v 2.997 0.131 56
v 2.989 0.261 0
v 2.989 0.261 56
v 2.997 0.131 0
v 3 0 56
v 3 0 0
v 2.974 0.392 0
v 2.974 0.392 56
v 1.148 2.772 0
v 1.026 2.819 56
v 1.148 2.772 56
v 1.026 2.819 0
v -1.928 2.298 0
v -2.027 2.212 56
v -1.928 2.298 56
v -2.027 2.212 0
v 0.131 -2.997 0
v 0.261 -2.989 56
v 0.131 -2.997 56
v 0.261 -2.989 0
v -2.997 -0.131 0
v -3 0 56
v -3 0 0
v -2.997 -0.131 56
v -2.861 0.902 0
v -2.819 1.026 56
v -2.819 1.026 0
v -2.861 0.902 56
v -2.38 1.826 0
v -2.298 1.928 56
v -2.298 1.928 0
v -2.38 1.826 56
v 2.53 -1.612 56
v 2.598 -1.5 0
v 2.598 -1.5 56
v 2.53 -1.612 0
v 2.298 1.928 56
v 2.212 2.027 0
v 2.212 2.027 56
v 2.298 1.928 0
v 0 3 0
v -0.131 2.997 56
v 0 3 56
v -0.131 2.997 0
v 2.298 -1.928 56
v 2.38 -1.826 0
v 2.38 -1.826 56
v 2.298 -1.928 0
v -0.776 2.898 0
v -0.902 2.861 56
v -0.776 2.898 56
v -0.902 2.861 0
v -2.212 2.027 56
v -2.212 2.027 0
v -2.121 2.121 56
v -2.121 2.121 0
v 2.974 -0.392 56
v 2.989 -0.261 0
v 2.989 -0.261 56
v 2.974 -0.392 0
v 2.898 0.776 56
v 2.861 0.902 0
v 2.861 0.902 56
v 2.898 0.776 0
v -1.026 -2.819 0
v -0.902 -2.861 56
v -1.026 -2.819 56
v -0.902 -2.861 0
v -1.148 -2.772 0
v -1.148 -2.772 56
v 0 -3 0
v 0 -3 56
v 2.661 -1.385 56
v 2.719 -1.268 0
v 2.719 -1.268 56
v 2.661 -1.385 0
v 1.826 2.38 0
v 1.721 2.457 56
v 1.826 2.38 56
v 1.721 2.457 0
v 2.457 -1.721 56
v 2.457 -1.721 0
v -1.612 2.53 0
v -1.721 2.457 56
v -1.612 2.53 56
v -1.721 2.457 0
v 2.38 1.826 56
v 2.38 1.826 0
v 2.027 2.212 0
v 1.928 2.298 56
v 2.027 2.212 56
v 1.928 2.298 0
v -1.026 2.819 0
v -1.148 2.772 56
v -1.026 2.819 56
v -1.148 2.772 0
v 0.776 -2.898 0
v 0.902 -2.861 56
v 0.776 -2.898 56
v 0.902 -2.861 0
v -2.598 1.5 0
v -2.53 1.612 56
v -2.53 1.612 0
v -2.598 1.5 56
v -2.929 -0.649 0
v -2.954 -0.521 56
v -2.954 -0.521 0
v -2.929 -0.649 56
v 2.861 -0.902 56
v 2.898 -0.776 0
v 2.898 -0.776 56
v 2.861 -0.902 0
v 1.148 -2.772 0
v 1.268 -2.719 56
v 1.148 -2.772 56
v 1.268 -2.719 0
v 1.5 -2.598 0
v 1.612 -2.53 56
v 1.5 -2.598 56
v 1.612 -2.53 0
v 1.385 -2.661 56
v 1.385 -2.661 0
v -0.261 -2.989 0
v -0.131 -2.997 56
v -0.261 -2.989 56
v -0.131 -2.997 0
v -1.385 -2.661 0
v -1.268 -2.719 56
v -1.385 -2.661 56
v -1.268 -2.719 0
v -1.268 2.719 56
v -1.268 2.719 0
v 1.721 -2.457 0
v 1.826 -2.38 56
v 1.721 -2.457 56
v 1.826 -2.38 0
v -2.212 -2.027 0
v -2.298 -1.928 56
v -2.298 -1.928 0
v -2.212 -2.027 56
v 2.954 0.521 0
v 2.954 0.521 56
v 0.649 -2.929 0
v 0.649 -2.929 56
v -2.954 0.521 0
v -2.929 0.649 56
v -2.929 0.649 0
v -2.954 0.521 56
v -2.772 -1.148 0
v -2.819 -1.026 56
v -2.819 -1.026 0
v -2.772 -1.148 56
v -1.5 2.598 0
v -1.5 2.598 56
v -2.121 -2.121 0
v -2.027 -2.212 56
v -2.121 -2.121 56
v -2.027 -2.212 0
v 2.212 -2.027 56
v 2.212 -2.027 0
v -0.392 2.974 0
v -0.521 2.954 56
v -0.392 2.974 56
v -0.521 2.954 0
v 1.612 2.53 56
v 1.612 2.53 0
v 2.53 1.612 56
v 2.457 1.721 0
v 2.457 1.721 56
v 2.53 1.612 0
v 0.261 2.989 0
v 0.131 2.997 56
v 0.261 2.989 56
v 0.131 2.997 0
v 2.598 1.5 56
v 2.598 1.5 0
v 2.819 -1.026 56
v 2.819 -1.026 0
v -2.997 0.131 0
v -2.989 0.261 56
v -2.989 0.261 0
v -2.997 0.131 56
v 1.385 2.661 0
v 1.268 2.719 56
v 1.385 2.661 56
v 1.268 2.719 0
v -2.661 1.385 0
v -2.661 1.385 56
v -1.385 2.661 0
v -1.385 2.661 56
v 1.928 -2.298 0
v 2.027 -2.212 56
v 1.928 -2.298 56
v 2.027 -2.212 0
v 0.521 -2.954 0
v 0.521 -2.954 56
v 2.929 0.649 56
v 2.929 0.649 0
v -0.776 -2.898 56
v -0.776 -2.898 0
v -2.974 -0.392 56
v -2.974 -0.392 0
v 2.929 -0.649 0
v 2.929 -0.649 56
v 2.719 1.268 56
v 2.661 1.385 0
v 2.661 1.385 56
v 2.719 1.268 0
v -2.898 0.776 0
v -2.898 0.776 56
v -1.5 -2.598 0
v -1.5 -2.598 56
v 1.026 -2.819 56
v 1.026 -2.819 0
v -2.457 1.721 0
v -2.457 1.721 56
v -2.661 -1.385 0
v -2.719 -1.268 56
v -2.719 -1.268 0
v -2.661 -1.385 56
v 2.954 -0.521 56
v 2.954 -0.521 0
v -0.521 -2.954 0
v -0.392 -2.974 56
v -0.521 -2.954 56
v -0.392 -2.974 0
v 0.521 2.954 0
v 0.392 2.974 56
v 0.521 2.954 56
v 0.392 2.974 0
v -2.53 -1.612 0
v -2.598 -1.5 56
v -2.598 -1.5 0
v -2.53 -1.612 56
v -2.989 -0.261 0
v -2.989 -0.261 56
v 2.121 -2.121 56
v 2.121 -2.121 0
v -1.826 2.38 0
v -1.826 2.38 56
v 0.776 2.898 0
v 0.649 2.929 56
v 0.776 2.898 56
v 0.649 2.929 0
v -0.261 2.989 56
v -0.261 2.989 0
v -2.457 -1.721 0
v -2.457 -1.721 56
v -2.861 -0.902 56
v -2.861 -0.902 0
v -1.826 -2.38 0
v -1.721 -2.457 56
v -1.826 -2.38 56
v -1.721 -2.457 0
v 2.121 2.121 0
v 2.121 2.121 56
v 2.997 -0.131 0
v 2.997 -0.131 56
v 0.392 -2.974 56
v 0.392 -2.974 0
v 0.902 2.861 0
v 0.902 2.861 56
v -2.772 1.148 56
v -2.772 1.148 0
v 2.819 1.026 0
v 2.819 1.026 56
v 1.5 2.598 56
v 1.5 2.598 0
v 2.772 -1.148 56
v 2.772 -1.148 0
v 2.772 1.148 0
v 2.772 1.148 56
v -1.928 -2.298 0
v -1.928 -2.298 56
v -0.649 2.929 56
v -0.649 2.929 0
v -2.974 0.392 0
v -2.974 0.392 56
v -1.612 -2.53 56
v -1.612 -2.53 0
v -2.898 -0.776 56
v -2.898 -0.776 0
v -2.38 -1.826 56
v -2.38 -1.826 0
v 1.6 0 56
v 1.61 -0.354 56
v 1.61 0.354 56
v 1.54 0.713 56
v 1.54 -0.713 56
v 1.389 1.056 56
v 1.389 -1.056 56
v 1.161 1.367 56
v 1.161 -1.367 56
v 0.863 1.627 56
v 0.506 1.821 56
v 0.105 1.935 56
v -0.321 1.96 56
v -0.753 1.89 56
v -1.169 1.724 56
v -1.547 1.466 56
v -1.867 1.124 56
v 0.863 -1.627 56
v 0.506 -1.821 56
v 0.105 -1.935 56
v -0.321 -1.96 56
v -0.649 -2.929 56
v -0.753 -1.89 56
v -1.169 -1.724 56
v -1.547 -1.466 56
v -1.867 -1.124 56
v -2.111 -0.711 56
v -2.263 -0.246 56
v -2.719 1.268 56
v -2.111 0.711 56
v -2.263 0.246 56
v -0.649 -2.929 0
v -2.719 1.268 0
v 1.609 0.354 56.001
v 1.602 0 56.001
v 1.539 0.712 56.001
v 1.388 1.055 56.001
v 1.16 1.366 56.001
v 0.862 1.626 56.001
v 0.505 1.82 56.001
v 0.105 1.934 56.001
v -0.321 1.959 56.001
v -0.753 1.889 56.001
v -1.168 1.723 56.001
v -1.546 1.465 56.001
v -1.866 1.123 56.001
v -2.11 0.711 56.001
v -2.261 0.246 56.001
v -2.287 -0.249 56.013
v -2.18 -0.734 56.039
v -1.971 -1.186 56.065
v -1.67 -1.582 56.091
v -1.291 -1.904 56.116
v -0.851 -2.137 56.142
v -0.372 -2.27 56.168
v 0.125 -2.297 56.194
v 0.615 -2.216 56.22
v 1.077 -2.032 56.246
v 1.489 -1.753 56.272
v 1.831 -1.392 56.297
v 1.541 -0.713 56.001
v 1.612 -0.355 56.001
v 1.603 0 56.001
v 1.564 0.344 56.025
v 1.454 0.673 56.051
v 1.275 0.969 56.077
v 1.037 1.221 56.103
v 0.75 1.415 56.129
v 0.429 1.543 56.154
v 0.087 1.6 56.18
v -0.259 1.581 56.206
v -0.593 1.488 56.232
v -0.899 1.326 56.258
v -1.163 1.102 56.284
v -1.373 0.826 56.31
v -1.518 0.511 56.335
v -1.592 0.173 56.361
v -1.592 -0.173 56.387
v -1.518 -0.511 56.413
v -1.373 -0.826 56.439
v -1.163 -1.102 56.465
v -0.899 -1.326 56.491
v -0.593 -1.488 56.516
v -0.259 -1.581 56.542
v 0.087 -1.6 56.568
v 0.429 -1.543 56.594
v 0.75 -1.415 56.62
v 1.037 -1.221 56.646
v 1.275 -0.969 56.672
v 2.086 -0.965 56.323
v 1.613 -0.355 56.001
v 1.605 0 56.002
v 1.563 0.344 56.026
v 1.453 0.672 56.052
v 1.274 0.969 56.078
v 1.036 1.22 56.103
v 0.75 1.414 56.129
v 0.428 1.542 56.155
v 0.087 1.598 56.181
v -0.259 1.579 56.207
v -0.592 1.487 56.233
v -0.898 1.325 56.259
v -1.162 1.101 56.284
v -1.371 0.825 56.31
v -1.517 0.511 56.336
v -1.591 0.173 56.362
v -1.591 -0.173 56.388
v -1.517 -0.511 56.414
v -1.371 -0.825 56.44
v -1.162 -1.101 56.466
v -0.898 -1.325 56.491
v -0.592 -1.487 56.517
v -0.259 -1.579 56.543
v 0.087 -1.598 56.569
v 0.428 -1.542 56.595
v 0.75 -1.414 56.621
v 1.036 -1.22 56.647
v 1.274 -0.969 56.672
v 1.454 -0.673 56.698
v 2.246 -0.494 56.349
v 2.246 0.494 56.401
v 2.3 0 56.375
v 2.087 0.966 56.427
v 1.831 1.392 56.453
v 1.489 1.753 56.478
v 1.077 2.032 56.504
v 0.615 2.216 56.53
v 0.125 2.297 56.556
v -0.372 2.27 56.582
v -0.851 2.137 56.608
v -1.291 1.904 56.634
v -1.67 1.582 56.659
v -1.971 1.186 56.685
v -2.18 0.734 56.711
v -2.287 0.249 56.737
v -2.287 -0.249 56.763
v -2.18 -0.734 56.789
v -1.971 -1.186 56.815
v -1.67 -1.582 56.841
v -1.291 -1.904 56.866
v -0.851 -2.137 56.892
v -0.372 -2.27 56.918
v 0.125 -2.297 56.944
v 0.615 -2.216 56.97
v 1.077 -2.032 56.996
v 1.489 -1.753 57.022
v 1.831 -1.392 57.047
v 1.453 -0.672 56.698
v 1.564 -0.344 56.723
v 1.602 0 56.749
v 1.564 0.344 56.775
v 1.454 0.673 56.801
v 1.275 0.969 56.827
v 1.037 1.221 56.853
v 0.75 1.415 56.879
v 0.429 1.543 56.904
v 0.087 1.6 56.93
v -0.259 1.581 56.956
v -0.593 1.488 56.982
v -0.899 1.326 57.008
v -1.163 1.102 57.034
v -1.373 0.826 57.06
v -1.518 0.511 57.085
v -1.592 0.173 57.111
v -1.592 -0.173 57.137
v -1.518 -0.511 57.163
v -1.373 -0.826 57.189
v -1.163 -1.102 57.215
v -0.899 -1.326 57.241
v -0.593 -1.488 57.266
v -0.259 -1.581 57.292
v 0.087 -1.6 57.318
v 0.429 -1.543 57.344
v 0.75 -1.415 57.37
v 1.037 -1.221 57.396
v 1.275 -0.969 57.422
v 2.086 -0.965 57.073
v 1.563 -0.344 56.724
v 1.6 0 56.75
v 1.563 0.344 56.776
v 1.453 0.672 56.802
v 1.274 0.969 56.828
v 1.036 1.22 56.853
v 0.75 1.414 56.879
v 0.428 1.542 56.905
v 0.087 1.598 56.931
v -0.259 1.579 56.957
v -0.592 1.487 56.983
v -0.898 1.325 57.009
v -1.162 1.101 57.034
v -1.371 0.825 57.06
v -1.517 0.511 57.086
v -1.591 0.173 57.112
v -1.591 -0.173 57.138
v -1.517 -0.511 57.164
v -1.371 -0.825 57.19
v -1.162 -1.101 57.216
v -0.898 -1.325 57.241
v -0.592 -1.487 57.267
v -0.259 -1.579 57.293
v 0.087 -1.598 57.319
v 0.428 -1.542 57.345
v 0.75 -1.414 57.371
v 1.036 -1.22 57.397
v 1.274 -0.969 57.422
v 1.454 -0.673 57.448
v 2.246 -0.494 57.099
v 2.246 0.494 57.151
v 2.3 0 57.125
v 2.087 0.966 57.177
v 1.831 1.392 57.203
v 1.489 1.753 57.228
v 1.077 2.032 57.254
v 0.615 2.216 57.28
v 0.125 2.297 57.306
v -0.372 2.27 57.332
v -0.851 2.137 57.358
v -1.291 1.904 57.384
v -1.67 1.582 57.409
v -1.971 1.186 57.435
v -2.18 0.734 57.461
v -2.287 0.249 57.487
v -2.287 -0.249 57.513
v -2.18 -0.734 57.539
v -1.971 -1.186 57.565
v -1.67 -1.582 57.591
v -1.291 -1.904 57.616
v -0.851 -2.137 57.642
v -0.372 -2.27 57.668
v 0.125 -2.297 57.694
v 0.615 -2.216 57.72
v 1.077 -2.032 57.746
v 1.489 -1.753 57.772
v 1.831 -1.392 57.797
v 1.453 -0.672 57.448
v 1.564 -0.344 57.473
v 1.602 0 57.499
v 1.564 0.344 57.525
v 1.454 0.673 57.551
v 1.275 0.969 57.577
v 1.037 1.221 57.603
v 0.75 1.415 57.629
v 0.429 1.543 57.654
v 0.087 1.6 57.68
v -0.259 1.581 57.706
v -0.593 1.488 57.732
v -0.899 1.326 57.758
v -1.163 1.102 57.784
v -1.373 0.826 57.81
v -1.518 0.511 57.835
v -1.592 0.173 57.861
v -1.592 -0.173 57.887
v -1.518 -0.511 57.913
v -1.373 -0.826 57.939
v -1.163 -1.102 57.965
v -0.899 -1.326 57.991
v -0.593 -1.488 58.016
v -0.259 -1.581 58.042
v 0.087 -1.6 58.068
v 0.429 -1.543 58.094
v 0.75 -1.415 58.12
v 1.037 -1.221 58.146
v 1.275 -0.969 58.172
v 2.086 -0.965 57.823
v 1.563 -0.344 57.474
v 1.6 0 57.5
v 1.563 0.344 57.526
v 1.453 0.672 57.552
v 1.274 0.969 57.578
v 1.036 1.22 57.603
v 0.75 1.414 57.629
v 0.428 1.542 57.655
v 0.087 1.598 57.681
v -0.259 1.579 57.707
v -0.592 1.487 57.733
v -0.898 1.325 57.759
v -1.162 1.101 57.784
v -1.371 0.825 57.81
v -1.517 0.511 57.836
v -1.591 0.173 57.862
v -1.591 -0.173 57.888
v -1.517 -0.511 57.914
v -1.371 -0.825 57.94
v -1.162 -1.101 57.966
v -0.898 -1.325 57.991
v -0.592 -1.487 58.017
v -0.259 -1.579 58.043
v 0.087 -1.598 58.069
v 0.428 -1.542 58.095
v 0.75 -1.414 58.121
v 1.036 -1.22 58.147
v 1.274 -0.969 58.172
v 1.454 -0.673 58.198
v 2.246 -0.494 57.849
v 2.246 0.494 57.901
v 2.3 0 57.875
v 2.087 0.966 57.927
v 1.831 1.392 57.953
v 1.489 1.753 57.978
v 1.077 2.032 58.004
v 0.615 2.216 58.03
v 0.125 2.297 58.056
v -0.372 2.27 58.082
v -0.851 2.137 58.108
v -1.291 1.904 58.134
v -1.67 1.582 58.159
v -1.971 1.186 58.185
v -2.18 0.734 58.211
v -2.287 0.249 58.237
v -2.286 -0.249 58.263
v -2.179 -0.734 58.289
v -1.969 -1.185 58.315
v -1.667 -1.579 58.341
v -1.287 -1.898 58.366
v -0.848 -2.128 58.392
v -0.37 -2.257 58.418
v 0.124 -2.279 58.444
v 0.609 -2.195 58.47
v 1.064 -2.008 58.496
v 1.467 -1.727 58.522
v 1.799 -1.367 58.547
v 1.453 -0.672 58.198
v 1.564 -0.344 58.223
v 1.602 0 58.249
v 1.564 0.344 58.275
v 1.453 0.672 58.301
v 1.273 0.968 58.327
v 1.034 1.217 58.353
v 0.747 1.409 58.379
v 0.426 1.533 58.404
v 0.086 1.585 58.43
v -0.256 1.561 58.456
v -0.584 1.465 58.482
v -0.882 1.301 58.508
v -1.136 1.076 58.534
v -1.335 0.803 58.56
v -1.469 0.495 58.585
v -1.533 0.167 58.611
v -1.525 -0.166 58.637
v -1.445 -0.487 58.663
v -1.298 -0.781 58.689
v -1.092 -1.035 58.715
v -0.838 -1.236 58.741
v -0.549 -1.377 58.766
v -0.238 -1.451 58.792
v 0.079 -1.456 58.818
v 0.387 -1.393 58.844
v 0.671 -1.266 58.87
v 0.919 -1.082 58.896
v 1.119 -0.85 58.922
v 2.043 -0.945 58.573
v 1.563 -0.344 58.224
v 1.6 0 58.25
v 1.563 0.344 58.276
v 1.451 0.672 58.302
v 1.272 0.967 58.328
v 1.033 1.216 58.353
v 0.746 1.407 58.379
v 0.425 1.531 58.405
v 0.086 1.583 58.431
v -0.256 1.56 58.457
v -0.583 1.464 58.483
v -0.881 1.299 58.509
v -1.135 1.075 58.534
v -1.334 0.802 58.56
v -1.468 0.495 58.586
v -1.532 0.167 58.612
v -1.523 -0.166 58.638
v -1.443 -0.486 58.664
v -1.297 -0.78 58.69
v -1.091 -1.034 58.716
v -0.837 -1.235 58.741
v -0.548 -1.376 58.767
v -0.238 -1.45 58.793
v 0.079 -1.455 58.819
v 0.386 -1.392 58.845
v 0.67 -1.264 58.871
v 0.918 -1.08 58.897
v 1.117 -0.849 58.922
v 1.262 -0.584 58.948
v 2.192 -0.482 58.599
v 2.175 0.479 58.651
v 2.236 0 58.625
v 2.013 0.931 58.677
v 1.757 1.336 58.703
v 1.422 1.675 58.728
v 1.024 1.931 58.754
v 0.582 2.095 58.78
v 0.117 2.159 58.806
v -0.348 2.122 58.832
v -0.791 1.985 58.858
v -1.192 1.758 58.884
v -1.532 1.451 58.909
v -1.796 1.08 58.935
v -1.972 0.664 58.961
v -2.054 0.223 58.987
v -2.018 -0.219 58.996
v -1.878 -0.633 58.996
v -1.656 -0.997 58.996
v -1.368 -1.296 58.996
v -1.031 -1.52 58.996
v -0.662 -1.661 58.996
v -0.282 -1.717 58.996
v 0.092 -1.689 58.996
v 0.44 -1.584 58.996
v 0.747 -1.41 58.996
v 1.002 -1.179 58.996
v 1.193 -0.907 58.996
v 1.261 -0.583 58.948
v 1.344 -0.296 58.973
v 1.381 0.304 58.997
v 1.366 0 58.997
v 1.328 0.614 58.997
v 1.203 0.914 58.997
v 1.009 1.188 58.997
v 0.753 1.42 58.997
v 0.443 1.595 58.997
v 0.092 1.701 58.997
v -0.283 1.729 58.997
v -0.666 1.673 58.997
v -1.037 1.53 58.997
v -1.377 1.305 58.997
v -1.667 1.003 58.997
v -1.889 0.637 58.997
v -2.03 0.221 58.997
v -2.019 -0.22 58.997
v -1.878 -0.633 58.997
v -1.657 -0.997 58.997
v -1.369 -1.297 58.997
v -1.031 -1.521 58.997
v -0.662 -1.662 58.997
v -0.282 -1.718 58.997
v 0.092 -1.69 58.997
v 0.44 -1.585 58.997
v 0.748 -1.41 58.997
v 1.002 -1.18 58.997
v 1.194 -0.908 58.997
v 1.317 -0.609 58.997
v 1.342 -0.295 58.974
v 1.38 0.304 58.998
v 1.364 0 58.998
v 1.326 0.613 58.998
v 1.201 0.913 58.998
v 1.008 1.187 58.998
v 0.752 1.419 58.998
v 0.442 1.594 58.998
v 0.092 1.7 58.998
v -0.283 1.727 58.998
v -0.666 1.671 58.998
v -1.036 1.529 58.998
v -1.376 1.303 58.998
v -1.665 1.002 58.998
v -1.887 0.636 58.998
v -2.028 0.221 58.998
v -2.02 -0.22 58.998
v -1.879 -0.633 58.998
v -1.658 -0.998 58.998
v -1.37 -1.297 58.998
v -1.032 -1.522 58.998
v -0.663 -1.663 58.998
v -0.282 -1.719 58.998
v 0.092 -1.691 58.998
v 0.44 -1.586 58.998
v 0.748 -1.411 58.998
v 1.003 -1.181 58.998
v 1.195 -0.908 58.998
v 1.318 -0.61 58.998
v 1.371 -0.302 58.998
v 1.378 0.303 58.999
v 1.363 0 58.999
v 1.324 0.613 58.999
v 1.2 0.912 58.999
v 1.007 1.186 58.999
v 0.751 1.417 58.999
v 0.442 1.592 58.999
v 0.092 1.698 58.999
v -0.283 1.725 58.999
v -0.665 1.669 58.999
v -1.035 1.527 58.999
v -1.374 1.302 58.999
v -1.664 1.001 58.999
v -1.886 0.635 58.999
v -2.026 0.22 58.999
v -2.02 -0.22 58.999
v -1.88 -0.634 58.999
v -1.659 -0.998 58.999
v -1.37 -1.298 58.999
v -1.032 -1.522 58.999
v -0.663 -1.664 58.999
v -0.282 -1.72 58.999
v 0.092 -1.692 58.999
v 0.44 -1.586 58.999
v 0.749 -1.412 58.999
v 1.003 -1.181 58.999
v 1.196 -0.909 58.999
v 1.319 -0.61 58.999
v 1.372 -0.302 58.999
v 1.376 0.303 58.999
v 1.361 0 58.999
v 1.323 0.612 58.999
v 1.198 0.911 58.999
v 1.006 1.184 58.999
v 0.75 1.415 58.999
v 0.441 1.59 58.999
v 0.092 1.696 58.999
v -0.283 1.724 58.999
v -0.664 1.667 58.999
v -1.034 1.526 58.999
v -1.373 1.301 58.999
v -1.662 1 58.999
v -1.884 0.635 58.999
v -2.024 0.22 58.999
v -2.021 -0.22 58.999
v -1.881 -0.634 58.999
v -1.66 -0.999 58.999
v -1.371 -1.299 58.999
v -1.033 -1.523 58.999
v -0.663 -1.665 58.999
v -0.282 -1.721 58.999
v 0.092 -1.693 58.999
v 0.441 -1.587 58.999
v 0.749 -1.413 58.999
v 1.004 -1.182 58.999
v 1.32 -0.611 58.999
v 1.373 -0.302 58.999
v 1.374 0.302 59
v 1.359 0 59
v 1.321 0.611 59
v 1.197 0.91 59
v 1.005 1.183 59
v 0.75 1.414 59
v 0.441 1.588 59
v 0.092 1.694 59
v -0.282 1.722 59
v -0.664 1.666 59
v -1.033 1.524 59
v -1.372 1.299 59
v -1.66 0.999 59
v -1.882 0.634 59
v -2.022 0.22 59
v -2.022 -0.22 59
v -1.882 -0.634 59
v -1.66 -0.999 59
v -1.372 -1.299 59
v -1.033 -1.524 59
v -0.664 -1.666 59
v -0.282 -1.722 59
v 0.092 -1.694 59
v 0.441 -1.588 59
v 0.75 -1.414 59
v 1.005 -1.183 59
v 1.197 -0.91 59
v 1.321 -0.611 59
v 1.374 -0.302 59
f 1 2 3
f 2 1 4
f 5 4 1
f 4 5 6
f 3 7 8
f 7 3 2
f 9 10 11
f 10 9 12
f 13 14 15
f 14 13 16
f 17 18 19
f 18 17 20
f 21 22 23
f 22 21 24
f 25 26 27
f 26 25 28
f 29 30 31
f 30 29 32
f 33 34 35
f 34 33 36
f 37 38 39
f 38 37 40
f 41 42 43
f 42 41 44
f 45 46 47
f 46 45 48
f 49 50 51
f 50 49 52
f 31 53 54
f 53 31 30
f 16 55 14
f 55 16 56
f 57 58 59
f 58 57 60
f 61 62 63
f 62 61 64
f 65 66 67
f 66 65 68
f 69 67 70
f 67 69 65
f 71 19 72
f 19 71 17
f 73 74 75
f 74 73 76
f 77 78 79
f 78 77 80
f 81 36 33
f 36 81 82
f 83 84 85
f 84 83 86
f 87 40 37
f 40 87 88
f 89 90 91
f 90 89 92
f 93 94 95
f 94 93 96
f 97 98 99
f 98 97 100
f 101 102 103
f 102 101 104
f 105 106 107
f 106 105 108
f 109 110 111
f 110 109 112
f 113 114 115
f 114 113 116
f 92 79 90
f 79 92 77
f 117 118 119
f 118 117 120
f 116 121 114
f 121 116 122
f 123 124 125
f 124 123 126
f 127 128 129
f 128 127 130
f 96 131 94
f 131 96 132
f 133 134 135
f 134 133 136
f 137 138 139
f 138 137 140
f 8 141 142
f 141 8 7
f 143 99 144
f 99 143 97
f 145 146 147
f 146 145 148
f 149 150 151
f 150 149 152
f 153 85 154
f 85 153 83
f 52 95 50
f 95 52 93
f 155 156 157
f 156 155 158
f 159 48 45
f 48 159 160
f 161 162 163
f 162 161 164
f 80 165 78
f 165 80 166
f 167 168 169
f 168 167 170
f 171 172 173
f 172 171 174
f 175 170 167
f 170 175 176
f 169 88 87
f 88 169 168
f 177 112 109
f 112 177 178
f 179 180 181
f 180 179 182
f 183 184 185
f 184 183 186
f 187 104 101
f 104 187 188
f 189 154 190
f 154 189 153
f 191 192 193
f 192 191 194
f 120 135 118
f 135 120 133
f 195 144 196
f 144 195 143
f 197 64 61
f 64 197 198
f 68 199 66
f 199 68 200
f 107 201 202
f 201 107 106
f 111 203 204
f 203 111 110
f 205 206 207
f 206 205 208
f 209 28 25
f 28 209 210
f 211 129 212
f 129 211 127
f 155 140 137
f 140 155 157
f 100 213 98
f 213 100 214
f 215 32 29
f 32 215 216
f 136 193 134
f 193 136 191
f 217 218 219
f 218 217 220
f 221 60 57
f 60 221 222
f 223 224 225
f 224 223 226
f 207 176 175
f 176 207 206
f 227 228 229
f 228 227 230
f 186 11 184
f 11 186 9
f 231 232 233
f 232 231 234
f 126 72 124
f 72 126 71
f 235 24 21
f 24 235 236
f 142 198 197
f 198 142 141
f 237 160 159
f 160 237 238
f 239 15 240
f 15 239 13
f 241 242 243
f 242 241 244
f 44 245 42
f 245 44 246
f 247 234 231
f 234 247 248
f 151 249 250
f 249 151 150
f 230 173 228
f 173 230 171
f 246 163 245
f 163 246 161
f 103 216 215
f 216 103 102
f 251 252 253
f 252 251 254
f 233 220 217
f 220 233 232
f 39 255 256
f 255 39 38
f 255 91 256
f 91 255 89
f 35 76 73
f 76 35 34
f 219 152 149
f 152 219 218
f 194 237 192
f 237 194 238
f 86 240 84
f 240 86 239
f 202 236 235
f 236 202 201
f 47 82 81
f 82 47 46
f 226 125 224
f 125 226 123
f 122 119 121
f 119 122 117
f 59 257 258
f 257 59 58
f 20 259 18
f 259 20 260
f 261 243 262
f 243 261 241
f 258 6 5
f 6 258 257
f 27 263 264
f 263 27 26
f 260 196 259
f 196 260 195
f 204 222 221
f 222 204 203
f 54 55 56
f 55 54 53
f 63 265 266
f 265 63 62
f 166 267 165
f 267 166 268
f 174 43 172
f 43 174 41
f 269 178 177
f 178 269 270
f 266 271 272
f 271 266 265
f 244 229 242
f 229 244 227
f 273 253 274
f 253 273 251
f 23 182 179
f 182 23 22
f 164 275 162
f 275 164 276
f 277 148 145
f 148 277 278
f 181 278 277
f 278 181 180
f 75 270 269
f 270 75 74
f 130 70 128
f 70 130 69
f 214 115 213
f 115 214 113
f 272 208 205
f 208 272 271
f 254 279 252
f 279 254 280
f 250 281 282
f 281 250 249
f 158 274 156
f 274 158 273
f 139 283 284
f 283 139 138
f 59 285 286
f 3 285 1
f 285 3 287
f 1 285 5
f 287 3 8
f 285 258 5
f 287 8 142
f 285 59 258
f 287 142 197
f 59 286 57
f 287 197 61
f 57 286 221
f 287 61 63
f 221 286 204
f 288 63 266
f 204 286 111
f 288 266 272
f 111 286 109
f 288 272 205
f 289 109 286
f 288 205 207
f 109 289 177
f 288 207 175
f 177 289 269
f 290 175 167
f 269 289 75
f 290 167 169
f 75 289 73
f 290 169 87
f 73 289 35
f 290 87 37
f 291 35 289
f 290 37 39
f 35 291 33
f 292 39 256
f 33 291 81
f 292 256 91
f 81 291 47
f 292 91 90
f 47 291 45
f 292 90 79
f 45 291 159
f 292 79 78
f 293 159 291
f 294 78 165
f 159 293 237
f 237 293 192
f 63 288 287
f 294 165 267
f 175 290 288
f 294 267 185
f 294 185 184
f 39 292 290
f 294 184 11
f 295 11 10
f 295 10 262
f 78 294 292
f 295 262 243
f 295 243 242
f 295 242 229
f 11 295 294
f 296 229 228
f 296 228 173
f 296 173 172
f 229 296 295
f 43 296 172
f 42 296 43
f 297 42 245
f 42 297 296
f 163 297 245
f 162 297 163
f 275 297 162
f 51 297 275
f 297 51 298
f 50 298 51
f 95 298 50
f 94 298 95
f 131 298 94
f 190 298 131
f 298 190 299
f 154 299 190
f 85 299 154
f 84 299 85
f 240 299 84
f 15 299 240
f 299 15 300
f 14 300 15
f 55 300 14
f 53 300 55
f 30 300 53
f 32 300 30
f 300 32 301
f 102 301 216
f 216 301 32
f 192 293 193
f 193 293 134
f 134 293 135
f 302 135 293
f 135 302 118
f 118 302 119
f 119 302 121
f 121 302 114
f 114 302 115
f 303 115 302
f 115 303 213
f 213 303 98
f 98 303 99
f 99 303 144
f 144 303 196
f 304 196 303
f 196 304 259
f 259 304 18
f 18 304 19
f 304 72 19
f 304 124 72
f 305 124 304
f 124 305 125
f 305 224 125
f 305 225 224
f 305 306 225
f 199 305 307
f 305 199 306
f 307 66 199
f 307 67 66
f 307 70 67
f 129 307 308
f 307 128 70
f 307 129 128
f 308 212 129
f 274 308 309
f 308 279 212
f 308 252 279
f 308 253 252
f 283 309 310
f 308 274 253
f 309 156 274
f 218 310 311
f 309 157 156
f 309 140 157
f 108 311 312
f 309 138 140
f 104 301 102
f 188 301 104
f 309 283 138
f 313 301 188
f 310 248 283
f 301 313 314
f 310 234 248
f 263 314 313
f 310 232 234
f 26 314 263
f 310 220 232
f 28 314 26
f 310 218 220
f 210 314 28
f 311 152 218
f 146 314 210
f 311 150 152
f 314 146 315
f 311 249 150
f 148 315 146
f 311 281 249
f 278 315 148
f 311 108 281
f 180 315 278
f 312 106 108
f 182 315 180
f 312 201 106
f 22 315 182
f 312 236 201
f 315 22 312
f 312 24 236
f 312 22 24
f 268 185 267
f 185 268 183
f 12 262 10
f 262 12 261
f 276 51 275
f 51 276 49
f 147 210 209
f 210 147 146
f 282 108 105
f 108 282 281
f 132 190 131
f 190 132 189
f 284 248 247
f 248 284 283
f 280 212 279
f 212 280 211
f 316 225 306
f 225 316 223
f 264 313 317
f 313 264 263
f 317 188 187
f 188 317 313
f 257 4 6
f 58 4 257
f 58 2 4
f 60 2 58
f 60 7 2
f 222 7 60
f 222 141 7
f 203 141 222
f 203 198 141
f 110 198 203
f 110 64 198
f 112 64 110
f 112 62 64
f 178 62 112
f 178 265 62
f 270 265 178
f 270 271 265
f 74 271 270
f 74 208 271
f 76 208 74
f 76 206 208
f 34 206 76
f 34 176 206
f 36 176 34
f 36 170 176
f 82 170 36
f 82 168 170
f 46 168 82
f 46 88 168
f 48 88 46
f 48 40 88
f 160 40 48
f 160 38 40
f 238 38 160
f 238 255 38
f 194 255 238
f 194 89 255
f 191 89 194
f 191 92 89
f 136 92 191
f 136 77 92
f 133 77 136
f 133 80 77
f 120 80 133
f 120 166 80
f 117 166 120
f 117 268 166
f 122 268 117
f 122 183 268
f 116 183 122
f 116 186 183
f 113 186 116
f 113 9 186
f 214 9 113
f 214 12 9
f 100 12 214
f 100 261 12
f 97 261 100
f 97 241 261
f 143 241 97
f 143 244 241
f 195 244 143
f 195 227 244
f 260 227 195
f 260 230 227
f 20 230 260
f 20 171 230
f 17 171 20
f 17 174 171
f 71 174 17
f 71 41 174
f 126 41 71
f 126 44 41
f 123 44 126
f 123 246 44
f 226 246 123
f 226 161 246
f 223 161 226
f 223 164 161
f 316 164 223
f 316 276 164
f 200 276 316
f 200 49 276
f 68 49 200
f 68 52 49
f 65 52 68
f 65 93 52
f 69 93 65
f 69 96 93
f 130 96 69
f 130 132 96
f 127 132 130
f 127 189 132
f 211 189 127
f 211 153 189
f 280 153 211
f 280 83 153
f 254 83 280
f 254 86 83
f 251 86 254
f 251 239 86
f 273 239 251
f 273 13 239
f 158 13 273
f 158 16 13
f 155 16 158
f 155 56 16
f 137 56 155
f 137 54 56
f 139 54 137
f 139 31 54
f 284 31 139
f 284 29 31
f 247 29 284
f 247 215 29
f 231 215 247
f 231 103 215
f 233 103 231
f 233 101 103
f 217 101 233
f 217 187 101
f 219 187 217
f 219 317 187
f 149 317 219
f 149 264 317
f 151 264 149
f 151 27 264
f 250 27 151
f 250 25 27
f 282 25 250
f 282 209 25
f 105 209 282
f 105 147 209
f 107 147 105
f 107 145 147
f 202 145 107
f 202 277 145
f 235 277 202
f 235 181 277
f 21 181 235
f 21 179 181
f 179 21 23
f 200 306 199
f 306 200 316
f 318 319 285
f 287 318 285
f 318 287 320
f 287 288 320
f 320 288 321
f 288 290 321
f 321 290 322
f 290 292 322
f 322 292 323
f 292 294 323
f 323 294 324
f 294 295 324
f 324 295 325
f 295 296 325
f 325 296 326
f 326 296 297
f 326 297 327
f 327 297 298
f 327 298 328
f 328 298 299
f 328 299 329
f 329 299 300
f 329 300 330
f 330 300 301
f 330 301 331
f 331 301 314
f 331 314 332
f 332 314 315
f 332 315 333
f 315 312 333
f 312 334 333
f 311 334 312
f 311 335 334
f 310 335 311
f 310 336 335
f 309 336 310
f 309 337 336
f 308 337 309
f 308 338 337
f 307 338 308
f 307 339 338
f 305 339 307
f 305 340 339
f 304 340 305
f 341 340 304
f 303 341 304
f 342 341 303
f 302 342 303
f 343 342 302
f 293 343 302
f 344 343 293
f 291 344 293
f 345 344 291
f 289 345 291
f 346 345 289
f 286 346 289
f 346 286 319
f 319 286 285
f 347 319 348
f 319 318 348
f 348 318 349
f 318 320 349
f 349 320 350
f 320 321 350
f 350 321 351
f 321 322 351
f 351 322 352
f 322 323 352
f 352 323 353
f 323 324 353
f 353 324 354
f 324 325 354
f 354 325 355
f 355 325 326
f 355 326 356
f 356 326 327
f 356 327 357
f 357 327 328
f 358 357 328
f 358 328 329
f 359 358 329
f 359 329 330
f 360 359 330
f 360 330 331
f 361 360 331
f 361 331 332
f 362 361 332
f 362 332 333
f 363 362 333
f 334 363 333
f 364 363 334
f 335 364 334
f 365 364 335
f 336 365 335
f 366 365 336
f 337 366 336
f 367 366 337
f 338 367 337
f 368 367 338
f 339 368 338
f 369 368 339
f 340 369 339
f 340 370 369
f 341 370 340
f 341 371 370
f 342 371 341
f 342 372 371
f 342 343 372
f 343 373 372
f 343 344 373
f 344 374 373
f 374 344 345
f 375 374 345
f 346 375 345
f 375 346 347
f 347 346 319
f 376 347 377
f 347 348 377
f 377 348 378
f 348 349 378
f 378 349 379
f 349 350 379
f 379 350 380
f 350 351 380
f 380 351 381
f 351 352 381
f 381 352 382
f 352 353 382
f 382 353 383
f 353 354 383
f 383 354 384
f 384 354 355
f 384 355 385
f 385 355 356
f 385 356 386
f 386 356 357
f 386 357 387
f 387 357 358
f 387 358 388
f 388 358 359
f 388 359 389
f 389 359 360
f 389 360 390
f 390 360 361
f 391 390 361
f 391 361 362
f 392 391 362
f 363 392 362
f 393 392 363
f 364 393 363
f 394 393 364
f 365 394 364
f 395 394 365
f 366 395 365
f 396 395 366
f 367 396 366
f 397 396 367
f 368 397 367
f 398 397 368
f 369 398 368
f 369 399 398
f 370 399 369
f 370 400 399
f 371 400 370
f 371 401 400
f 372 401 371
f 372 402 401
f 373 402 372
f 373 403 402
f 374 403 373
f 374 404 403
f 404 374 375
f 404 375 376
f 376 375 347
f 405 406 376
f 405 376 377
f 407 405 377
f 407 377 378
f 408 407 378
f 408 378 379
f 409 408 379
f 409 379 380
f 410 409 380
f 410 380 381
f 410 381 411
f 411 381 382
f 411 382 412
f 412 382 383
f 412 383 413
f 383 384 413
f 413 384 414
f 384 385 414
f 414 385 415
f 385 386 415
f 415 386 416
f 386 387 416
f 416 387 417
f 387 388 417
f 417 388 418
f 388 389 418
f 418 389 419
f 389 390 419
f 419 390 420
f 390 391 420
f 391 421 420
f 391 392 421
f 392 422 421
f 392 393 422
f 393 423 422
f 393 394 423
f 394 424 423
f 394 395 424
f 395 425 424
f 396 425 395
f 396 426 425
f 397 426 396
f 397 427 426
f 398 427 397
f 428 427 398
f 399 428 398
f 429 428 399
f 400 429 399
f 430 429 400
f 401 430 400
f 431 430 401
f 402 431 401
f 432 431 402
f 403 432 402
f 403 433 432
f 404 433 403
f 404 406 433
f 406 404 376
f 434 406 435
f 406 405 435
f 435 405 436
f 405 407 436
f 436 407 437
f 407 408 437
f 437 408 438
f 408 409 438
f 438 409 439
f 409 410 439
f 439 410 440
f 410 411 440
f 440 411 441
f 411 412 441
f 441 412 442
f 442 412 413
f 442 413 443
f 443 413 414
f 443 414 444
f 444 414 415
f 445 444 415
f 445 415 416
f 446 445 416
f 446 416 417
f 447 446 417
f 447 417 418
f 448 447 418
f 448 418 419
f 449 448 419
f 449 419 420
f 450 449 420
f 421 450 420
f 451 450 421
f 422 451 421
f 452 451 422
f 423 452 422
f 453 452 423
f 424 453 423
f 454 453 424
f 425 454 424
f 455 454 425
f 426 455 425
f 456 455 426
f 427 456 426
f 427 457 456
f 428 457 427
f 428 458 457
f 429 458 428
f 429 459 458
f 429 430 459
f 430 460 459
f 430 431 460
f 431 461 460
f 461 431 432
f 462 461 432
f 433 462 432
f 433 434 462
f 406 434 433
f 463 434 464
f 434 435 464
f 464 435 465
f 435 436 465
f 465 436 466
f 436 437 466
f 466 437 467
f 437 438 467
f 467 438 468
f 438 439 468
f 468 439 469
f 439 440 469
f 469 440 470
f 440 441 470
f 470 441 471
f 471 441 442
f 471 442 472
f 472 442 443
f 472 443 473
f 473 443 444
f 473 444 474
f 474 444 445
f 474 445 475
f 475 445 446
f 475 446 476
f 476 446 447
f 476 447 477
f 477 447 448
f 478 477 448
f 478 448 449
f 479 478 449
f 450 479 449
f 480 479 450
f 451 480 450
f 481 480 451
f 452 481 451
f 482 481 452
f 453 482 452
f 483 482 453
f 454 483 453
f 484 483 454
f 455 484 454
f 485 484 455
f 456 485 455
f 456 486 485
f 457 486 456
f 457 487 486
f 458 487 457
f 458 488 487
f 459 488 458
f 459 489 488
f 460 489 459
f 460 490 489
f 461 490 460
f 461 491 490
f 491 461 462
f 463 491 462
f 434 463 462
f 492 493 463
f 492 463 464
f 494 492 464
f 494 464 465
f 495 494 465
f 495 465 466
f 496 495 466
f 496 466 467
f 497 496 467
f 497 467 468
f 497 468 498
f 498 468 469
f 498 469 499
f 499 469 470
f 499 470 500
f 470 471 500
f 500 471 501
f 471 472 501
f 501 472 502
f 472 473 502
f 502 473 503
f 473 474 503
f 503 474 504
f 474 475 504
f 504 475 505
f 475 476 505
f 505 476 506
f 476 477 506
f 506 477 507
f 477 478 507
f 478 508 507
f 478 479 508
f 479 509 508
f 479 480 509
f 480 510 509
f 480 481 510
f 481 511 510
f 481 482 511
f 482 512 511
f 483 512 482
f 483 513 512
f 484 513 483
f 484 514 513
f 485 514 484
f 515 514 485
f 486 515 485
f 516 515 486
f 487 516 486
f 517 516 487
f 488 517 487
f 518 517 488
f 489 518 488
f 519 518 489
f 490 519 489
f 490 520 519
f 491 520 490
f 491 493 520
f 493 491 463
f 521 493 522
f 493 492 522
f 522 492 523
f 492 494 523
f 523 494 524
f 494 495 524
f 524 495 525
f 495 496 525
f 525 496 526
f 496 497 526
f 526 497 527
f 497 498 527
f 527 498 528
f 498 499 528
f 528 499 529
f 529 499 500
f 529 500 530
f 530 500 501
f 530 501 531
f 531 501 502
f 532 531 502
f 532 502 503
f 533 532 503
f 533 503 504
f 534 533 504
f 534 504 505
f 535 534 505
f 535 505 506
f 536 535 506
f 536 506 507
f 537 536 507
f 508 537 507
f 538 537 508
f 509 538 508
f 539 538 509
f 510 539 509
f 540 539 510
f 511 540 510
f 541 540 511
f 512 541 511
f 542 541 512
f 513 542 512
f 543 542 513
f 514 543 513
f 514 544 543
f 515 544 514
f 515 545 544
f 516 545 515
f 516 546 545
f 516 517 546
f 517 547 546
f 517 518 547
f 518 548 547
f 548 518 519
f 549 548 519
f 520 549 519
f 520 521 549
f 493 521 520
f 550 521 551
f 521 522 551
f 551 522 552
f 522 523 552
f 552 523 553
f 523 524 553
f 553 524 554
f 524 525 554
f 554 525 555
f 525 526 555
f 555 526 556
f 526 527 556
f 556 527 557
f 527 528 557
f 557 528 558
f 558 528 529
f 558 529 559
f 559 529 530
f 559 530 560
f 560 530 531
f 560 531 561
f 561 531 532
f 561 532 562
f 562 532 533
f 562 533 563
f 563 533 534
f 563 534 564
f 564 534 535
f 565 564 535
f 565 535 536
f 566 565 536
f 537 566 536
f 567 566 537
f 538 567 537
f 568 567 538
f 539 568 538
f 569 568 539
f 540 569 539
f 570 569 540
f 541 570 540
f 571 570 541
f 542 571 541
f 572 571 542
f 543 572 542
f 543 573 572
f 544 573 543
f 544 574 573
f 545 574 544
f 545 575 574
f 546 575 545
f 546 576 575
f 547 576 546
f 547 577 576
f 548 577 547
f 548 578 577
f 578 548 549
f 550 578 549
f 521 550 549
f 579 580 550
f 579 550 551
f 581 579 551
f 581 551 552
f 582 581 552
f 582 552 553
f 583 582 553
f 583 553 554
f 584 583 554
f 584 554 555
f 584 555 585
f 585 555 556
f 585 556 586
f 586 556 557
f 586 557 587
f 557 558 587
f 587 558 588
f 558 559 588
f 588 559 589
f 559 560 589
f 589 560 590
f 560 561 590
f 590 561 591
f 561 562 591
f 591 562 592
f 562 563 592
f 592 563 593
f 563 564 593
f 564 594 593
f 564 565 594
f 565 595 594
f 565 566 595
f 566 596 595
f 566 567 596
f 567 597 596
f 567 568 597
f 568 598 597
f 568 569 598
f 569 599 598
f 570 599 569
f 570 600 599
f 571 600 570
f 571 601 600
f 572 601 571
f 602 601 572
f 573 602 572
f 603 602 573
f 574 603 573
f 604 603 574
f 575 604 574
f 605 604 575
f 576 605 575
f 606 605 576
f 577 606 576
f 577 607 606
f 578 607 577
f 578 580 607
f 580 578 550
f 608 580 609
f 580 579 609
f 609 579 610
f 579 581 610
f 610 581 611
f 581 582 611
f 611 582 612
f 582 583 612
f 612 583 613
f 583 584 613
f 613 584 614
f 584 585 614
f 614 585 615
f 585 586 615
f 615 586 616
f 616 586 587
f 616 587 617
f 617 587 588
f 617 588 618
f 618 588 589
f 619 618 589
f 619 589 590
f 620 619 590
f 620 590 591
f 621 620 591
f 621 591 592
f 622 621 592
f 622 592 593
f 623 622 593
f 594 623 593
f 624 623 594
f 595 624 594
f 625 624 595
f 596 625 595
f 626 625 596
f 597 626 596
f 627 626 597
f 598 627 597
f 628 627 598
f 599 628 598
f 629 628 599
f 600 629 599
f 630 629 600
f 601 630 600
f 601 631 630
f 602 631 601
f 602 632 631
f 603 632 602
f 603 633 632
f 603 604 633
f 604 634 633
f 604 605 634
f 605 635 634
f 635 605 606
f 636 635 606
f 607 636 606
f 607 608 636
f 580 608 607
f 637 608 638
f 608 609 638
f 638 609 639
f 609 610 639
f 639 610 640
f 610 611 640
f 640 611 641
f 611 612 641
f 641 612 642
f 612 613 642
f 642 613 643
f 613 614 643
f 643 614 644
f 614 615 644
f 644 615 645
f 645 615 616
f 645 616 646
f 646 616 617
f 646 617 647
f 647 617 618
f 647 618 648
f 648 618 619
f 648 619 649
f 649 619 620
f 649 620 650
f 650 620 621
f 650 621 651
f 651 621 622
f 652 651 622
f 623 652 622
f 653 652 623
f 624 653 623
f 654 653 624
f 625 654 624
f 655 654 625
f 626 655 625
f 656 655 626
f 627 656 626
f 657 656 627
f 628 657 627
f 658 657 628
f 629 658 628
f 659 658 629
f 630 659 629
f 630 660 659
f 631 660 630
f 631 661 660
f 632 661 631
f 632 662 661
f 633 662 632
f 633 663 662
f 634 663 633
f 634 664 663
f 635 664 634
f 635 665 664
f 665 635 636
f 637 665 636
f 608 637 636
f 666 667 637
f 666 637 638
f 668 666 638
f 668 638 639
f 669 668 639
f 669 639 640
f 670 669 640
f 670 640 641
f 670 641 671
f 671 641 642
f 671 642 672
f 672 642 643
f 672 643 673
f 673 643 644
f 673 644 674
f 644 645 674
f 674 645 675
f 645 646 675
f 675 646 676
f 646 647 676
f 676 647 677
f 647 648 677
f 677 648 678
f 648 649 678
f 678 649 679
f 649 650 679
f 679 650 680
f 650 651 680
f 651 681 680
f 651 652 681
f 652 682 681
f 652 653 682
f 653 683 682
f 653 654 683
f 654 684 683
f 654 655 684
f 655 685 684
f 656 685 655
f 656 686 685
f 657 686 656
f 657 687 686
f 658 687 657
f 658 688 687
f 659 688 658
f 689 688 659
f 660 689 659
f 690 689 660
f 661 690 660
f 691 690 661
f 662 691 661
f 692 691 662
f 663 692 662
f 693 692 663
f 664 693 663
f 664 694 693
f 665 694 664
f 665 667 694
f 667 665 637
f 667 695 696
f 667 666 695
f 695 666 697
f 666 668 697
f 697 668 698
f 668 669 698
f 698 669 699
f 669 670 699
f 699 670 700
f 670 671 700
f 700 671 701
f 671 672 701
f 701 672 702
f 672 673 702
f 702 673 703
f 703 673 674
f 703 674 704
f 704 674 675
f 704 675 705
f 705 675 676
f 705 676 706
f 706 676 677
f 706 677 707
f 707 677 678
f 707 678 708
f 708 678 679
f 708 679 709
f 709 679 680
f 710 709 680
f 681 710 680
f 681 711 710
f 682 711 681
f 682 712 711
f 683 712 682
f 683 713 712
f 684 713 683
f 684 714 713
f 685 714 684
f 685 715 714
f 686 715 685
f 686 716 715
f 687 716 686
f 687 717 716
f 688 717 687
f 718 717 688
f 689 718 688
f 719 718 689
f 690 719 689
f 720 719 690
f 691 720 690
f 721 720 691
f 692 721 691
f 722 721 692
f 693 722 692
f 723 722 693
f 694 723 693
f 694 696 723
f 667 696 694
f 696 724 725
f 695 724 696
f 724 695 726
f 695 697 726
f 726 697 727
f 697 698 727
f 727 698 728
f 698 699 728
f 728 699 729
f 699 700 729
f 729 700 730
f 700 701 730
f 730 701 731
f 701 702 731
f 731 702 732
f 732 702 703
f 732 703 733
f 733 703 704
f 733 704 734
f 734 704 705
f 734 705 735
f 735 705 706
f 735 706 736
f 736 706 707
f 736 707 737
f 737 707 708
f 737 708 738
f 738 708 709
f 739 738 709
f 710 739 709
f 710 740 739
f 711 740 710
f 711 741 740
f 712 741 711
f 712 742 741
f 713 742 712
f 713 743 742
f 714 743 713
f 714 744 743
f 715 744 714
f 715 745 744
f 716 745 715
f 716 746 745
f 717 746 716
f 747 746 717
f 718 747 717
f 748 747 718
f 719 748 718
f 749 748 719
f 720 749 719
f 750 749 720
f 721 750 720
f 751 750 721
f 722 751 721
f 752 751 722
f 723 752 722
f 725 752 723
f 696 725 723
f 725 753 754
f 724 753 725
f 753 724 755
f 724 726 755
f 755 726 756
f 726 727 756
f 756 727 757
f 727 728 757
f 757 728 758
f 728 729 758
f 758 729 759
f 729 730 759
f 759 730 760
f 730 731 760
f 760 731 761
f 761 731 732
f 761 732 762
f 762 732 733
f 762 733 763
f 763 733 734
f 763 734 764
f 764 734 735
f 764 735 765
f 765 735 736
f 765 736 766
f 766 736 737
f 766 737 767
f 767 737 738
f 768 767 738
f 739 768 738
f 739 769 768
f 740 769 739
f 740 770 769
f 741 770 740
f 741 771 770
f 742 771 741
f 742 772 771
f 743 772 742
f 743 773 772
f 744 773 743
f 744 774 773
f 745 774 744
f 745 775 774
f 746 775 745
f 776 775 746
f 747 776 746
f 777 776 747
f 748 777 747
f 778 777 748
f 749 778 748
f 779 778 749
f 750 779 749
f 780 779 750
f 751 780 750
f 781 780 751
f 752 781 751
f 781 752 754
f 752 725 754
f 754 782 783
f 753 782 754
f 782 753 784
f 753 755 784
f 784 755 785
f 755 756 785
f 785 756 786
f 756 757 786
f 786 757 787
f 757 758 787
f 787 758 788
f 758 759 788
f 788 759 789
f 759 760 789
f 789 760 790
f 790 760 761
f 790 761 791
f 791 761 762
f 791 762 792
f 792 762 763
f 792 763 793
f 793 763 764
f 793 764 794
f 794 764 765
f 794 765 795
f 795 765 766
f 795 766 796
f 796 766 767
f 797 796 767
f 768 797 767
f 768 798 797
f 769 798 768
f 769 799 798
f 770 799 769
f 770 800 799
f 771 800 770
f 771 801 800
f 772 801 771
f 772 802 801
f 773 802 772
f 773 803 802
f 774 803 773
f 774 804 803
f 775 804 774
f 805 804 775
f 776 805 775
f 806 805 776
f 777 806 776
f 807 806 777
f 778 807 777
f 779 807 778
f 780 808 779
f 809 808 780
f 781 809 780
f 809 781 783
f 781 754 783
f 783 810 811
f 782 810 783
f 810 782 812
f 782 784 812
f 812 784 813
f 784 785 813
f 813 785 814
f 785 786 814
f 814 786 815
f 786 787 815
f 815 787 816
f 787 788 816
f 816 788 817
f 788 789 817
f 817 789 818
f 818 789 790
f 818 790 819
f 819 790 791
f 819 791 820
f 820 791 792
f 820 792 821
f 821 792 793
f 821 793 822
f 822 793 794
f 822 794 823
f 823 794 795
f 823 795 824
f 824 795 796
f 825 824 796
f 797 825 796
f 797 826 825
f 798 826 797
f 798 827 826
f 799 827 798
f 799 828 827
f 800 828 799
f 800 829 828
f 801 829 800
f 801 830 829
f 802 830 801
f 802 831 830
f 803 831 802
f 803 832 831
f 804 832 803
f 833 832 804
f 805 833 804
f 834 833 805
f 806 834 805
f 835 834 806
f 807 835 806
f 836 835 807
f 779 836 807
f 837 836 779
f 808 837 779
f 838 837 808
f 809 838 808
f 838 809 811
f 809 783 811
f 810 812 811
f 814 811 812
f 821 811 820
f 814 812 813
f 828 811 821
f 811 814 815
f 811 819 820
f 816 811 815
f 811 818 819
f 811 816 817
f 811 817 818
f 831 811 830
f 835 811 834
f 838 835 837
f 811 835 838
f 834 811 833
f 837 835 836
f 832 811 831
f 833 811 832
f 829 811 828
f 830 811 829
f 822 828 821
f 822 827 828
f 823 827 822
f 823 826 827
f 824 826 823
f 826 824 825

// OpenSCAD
// Created 2016-2017 by Ryan A. Colyer.
// This work is released with CC0 into the public domain.
// https://creativecommons.org/publicdomain/zero/1.0/
//
// https://www.thingiverse.com/thing:1686322
//
// v2.1

$fn = 100;

screw_resolution = 0.5;  // in mm

// Legs
leg_diameter = 6;
leg_height = 56;

// Provides standard metric thread pitches.
function ThreadPitch(diameter) =
  (diameter <= 64) ?
    lookup(diameter, [
      [2, 0.4],
      [2.5, 0.45],
      [3, 0.5],
      [4, 0.7],
      [5, 0.8],
      [6, 1.0],
      [7, 1.0],
      [8, 1.25],
      [10, 1.5],
      [12, 1.75],
      [14, 2.0],
      [16, 2.0],
      [18, 2.5],
      [20, 2.5],
      [22, 2.5],
      [24, 3.0],
      [27, 3.0],
      [30, 3.5],
      [33, 3.5],
      [36, 4.0],
      [39, 4.0],
      [42, 4.5],
      [48, 5.0],
      [52, 5.0],
      [56, 5.5],
      [60, 5.5],
      [64, 6.0]
    ]) :
    diameter * 6.0 / 64;


// This generates a closed polyhedron from an array of arrays of points,
// with each inner array tracing out one loop outlining the polyhedron.
// pointarrays should contain an array of N arrays each of size P outlining a
// closed manifold.  The points must obey the right-hand rule.  For example,
// looking down, the P points in the inner arrays are counter-clockwise in a
// loop, while the N point arrays increase in height.  Points in each inner
// array do not need to be equal height, but they usually should not meet or
// cross the line segments from the adjacent points in the other arrays.
// (N>=2, P>=3)
// Core triangles:
//   [j][i], [j+1][i], [j+1][(i+1)%P]
//   [j][i], [j+1][(i+1)%P], [j][(i+1)%P]
//   Then triangles are formed in a loop with the middle point of the first
//   and last array.
module ClosePoints(pointarrays) {
  function recurse_avg(arr, n=0, p=[0,0,0]) = (n>=len(arr)) ? p :
    recurse_avg(arr, n+1, p+(arr[n]-p)/(n+1));

  N = len(pointarrays);
  P = len(pointarrays[0]);
  NP = N*P;
  lastarr = pointarrays[N-1];
  midbot = recurse_avg(pointarrays[0]);
  midtop = recurse_avg(pointarrays[N-1]);

  faces_bot = [
    for (i=[0:P-1])
      [0,i+1,1+(i+1)%len(pointarrays[0])]
  ];

  loop_offset = 1;
  bot_len = loop_offset + P;

  faces_loop = [
    for (j=[0:N-2], i=[0:P-1], t=[0:1])
      [loop_offset, loop_offset, loop_offset] + (t==0 ?
      [j*P+i, (j+1)*P+i, (j+1)*P+(i+1)%P] :
      [j*P+i, (j+1)*P+(i+1)%P, j*P+(i+1)%P])
  ];

  top_offset = loop_offset + NP - P;
  midtop_offset = top_offset + P;

  faces_top = [
    for (i=[0:P-1])
      [midtop_offset,top_offset+(i+1)%P,top_offset+i]
  ];

  points = [
    for (i=[-1:NP])
      (i<0) ? midbot :
      ((i==NP) ? midtop :
      pointarrays[floor(i/P)][i%P])
  ];
  faces = concat(faces_bot, faces_loop, faces_top);

  polyhedron(points=points, faces=faces);
}

// This creates a vertical rod at the origin with external threads.  It uses
// metric standards by default.
module ScrewThread(outer_diam, height, pitch=0, tooth_angle=30, tolerance=0.4, tip_height=0, tooth_height=0, tip_min_fract=0) {

  pitch = (pitch==0) ? ThreadPitch(outer_diam) : pitch;
  tooth_height = (tooth_height==0) ? pitch : tooth_height;
  tip_min_fract = (tip_min_fract<0) ? 0 :
    ((tip_min_fract>0.9999) ? 0.9999 : tip_min_fract);

  outer_diam_cor = outer_diam + 0.25*tolerance; // Plastic shrinkage correction
  inner_diam = outer_diam - tooth_height/tan(tooth_angle);
  or = (outer_diam_cor < screw_resolution) ?
    screw_resolution/2 : outer_diam_cor / 2;
  ir = (inner_diam < screw_resolution) ? screw_resolution/2 : inner_diam / 2;
  height = (height < screw_resolution) ? screw_resolution : height;

  steps_per_loop_try = ceil(2*3.14159265359*or / screw_resolution);
  steps_per_loop = (steps_per_loop_try < 4) ? 4 : steps_per_loop_try;
  hs_ext = 3;
  hsteps = ceil(3 * height / pitch) + 2*hs_ext;

  extent = or - ir;

  tip_start = height-tip_height;
  tip_height_sc = tip_height / (1-tip_min_fract);

  tip_height_ir = (tip_height_sc > tooth_height/2) ?
    tip_height_sc - tooth_height/2 : tip_height_sc;

  tip_height_w = (tip_height_sc > tooth_height) ? tooth_height : tip_height_sc;
  tip_wstart = height + tip_height_sc - tip_height - tip_height_w;


  function tooth_width(a, h, pitch, tooth_height, extent) =
    let(
      ang_full = h*360.0/pitch-a,
      ang_pn = atan2(sin(ang_full), cos(ang_full)),
      ang = ang_pn < 0 ? ang_pn+360 : ang_pn,
      frac = ang/360,
      tfrac_half = tooth_height / (2*pitch),
      tfrac_cut = 2*tfrac_half
    )
    (frac > tfrac_cut) ? 0 : (
      (frac <= tfrac_half) ?
        ((frac / tfrac_half) * extent) :
        ((1 - (frac - tfrac_half)/tfrac_half) * extent)
    );


  pointarrays = [
    for (hs=[0:hsteps])
      [
        for (s=[0:steps_per_loop-1])
          let(
            ang_full = s*360.0/steps_per_loop,
            ang_pn = atan2(sin(ang_full), cos(ang_full)),
            ang = ang_pn < 0 ? ang_pn+360 : ang_pn,

            h_fudge = pitch*0.001,

            h_mod =
              (hs%3 == 2) ?
                ((s == steps_per_loop-1) ? tooth_height - h_fudge : (
                 (s == steps_per_loop-2) ? tooth_height/2 : 0)) : (
              (hs%3 == 0) ?
                ((s == steps_per_loop-1) ? pitch-tooth_height/2 : (
                 (s == steps_per_loop-2) ? pitch-tooth_height + h_fudge : 0)) :
                ((s == steps_per_loop-1) ? pitch-tooth_height/2 + h_fudge : (
                 (s == steps_per_loop-2) ? tooth_height/2 : 0))
              ),

            h_level =
              (hs%3 == 2) ? tooth_height - h_fudge : (
              (hs%3 == 0) ? 0 : tooth_height/2),

            h_ub = floor((hs-hs_ext)/3) * pitch
              + h_level + ang*pitch/360.0 - h_mod,
            h_max = height - (hsteps-hs) * h_fudge,
            h_min = hs * h_fudge,
            h = (h_ub < h_min) ? h_min : ((h_ub > h_max) ? h_max : h_ub),

            ht = h - tip_start,
            hf_ir = ht/tip_height_ir,
            ht_w = h - tip_wstart,
            hf_w_t = ht_w/tip_height_w,
            hf_w = (hf_w_t < 0) ? 0 : ((hf_w_t > 1) ? 1 : hf_w_t),

            ext_tip = (h <= tip_wstart) ? extent : (1-hf_w) * extent,
            wnormal = tooth_width(ang, h, pitch, tooth_height, ext_tip),
            w = (h <= tip_wstart) ? wnormal :
              (1-hf_w) * wnormal +
              hf_w * (0.1*screw_resolution + (wnormal * wnormal * wnormal /
                (ext_tip*ext_tip+0.1*screw_resolution))),
            r = (ht <= 0) ? ir + w :
              ( (ht < tip_height_ir ? ((2/(1+(hf_ir*hf_ir))-1) * ir) : 0) + w)
          )
          [r*cos(ang), r*sin(ang), h]
      ]
  ];


  ClosePoints(pointarrays);
}

// Solid rod on the bottom, external threads on the top.
module RodStart(height, diameter, thread_len=0, thread_diam=0, thread_pitch=0) {
  // A reasonable default.
  thread_diam = (thread_diam==0) ? 0.75*diameter : thread_diam;
  thread_len = (thread_len==0) ? 0.5*diameter : thread_len;
  thread_pitch = (thread_pitch==0) ? ThreadPitch(thread_diam) : thread_pitch;

  cylinder(r=diameter/2, h=height, $fn=24*diameter);

  translate([0, 0, height])
    ScrewThread(thread_diam, thread_len, thread_pitch,
      tip_height=thread_pitch, tip_min_fract=0.75);
}

// Legs
module leg() {
  RodStart(leg_height, leg_diameter);
}

// Render
leg();
